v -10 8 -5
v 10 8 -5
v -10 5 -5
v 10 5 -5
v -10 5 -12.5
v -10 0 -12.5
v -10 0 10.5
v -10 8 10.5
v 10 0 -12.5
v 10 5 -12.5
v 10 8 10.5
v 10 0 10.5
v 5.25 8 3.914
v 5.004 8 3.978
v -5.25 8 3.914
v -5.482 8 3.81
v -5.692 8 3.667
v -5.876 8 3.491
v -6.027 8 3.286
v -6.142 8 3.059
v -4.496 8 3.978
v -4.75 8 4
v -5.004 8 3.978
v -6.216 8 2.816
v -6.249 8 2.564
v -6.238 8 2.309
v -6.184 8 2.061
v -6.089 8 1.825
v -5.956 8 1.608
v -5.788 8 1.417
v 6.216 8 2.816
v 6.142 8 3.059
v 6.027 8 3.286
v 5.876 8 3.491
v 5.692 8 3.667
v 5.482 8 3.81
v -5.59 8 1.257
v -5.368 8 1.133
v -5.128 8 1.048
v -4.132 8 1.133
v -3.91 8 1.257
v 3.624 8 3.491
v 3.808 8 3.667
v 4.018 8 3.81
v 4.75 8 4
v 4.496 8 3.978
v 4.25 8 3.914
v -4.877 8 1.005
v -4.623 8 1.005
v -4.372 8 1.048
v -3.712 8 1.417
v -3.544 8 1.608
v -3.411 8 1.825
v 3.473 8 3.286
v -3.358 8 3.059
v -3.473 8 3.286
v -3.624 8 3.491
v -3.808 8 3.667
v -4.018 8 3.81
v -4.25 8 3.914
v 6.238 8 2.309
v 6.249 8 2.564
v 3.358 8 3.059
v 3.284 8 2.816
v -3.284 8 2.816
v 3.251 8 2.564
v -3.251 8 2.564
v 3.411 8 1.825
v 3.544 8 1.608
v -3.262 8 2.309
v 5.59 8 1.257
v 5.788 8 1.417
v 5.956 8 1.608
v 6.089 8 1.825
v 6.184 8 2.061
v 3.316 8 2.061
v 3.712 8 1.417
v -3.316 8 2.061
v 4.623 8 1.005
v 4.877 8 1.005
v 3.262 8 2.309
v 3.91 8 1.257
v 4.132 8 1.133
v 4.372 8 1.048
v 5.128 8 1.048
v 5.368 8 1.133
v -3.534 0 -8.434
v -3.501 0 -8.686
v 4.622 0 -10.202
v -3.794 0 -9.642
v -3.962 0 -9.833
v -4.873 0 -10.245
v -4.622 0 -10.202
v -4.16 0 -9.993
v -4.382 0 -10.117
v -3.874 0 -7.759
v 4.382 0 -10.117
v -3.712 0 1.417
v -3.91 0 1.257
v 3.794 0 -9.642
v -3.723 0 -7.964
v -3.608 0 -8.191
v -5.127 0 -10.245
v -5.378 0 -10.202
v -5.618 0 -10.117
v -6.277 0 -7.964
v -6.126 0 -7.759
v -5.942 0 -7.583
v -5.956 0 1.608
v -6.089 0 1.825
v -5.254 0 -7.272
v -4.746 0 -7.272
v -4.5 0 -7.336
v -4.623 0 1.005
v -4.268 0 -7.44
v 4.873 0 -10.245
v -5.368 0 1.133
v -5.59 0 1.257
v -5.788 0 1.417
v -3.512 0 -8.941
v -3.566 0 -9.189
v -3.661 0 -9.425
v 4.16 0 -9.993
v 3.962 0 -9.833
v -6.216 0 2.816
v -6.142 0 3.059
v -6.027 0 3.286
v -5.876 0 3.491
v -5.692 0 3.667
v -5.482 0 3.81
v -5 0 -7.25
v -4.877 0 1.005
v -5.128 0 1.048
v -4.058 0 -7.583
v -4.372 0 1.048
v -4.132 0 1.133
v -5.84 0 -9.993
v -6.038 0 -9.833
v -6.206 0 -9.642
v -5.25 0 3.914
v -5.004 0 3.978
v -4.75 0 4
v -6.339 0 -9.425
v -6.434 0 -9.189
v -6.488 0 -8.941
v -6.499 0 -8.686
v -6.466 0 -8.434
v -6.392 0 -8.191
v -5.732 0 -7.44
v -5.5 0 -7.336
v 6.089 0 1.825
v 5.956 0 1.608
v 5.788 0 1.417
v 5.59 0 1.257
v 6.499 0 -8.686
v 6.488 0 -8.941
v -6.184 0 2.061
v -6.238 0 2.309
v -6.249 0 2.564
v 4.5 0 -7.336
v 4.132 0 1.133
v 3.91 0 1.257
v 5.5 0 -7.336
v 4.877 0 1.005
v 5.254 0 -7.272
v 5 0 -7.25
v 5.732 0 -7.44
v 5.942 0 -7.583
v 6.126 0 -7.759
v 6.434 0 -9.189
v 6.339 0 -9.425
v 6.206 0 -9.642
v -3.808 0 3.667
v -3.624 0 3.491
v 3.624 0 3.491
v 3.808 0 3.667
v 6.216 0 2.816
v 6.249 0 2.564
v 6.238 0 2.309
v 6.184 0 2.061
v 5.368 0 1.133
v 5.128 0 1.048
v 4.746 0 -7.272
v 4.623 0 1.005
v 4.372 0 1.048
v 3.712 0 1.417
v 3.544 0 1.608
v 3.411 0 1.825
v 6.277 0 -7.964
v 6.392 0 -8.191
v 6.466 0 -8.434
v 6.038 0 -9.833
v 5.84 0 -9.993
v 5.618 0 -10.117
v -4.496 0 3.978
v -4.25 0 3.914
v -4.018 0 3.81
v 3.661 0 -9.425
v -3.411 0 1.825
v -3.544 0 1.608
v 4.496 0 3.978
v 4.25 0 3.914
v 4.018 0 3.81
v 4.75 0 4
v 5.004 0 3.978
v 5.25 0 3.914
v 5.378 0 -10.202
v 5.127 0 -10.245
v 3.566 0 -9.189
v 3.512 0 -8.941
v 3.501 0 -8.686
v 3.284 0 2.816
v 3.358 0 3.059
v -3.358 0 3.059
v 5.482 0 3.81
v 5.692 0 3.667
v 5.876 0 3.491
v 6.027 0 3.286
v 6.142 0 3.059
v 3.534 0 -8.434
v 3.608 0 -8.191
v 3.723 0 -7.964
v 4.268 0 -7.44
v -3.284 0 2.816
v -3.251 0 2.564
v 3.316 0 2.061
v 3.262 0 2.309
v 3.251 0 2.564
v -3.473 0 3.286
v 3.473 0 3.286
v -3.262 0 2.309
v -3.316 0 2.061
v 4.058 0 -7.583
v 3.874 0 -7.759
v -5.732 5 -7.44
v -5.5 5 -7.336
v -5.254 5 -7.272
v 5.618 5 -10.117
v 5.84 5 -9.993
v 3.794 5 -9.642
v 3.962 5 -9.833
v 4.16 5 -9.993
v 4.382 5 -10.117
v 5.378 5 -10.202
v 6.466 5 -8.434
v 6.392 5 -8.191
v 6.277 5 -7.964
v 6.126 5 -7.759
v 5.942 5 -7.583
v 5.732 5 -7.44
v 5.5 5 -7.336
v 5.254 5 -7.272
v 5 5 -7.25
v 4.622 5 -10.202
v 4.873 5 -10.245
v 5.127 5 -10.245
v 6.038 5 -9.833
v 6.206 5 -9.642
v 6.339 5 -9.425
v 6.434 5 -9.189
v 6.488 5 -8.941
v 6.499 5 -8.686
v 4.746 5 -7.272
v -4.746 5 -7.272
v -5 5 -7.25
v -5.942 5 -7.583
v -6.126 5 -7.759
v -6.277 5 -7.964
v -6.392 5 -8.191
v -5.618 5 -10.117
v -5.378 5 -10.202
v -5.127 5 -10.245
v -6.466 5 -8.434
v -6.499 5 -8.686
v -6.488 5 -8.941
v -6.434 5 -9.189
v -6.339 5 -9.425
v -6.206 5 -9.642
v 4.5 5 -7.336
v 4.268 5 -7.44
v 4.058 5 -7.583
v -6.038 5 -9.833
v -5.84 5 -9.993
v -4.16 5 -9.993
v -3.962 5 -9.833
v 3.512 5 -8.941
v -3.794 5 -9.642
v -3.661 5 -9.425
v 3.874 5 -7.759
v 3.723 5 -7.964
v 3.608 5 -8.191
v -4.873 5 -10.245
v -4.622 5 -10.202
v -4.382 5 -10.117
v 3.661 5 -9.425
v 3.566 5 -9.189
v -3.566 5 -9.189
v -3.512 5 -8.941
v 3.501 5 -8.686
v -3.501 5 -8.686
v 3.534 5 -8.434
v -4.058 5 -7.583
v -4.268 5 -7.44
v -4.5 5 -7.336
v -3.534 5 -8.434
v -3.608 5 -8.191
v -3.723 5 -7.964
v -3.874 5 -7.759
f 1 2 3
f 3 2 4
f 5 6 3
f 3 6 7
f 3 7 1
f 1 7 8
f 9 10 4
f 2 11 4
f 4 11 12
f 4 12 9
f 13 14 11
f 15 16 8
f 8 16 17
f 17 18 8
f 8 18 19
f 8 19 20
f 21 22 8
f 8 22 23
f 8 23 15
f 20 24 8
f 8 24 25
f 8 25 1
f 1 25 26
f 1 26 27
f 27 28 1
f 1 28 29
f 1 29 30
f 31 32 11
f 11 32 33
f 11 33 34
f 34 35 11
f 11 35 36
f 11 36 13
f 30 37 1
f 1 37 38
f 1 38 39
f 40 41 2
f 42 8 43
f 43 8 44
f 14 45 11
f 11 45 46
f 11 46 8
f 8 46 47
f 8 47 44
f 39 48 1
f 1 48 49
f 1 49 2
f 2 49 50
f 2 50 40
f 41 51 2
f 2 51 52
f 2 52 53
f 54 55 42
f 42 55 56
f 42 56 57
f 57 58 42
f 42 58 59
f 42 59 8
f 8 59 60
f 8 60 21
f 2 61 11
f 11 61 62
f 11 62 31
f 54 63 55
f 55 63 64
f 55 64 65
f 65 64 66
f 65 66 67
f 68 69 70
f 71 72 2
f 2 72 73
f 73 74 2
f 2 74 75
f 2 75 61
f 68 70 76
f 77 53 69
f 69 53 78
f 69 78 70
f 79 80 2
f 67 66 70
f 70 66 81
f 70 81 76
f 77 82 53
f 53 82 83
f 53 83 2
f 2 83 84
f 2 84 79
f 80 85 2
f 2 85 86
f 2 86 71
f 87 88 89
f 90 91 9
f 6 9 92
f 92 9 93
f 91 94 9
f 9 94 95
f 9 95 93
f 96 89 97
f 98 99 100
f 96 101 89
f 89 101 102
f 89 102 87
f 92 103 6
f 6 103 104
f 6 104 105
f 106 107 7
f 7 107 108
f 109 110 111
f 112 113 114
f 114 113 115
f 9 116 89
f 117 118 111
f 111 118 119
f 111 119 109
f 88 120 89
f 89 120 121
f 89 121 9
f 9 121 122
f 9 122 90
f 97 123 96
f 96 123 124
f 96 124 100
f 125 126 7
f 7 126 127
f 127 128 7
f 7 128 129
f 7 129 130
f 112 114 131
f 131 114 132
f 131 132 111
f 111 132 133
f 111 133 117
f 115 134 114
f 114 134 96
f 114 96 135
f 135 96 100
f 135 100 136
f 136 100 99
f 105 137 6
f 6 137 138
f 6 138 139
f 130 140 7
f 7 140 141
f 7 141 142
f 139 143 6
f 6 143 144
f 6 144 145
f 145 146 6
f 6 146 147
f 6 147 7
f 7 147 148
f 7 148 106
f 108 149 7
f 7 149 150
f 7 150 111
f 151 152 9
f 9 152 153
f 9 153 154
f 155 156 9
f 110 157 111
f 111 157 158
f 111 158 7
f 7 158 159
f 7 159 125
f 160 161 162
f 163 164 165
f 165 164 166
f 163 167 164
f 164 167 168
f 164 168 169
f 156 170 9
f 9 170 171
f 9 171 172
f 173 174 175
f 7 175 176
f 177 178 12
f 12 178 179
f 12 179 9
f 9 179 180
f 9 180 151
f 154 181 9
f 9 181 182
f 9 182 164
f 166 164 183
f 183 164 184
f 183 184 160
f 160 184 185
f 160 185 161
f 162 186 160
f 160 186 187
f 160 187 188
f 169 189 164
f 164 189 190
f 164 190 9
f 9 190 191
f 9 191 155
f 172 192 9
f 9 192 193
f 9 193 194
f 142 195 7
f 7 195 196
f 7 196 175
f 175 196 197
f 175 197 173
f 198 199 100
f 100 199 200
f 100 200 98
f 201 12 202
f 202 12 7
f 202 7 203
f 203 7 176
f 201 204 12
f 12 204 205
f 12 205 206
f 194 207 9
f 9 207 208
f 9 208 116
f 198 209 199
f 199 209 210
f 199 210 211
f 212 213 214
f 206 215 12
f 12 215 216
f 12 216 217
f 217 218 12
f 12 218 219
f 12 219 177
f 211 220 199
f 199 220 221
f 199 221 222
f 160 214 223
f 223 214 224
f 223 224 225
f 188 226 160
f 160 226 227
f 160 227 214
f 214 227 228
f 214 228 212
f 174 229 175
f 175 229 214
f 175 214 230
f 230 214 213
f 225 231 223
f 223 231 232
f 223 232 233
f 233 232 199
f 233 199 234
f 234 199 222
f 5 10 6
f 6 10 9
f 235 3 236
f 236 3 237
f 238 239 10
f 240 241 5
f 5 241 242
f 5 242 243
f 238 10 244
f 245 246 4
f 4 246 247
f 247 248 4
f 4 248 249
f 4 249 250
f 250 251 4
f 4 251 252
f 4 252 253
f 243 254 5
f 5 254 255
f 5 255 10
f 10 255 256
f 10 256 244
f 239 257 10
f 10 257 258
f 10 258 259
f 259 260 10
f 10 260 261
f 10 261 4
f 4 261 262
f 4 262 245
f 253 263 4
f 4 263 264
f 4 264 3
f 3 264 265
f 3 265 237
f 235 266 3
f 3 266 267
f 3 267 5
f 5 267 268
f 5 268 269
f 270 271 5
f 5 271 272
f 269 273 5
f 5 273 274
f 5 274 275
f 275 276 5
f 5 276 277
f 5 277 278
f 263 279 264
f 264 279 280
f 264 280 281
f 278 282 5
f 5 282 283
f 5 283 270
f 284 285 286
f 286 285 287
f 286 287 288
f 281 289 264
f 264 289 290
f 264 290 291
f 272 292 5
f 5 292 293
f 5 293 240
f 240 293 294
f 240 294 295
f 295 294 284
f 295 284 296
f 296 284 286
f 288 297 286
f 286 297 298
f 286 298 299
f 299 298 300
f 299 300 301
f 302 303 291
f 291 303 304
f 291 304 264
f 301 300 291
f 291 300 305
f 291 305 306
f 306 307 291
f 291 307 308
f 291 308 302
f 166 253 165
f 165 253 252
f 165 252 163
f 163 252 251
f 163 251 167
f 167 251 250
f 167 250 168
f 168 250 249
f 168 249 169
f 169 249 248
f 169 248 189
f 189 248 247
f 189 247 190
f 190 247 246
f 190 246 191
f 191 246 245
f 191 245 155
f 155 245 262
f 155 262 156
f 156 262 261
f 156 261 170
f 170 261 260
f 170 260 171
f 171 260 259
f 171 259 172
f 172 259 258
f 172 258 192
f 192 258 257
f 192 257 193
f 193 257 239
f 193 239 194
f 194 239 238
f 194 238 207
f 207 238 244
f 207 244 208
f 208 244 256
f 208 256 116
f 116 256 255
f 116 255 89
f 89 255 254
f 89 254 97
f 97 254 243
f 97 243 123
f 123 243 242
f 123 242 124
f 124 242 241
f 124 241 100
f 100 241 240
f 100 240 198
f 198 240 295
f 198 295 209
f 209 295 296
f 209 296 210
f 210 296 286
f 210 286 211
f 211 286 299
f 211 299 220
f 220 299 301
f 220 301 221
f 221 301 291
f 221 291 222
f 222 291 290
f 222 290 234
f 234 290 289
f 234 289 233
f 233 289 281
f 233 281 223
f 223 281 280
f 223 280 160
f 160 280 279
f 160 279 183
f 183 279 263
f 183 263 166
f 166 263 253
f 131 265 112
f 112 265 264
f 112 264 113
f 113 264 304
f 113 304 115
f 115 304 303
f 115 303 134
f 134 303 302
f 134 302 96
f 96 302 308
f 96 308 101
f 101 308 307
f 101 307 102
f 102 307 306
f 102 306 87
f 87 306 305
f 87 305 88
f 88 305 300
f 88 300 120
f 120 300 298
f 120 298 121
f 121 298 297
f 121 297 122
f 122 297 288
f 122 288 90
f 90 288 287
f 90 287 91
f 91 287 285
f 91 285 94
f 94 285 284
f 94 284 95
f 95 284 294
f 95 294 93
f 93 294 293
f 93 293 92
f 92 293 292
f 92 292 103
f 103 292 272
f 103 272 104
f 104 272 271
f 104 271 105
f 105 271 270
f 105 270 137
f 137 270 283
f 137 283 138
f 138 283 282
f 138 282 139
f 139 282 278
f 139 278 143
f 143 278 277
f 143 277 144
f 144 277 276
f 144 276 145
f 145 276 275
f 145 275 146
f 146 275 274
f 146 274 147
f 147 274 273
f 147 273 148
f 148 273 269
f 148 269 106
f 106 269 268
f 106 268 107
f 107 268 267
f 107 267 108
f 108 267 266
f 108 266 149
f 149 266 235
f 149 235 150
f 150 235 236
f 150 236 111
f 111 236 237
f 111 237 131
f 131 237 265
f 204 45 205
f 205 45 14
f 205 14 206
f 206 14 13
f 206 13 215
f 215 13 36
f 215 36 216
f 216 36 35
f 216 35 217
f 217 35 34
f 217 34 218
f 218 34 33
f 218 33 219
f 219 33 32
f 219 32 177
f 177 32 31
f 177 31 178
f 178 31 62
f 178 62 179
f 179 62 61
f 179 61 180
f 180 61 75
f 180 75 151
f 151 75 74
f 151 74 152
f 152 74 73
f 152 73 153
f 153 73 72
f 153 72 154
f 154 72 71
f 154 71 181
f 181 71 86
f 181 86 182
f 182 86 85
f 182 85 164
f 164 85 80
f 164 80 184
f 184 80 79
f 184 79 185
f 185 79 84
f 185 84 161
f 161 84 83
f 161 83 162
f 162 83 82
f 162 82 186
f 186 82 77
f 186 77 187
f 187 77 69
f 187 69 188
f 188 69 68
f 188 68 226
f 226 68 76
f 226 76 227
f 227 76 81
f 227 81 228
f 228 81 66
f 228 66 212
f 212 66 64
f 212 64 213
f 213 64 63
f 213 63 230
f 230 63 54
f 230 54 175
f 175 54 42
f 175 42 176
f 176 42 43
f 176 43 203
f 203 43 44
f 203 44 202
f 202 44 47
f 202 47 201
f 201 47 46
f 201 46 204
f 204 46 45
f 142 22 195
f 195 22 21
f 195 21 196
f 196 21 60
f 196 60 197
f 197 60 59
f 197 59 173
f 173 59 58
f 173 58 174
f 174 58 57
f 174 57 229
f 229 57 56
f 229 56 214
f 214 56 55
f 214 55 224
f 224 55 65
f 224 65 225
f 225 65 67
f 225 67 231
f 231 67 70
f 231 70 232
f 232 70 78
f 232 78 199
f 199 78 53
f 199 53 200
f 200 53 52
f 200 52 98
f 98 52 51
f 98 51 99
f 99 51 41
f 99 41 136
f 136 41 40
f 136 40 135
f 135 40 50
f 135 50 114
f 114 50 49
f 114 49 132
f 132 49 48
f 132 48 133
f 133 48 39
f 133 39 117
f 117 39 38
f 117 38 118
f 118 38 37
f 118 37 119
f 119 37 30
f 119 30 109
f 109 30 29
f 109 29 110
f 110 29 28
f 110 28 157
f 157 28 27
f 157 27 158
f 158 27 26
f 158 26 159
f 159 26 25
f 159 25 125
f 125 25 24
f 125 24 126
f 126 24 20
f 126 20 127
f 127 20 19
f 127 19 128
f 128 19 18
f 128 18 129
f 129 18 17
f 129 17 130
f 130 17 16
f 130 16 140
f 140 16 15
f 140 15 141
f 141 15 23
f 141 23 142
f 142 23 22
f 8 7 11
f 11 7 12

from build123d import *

# Parameters (mm, degrees)
CROQUIS1_W              = 20
CROQUIS1_H              = 17.5
SALIENTE_EXTRUIR1_DEPTH = 8
CROQUIS1_4_W            = 20
CROQUIS1_4_H            = 7.5
SALIENTE_EXTRUIR2_DEPTH = 5
CROQUIS2_R              = 1.5
CORTAR_EXTRUIR1_DEPTH   = 5
CROQUIS3_R              = 1.5
CORTAR_EXTRUIR2_DEPTH   = 20
CROQUIS4_W              = 20
CROQUIS4_H              = 2
CORTAR_EXTRUIR3_DEPTH   = 35


with BuildPart() as part:
    # Croquis1 → Saliente-Extruir1 (new body)
    with BuildSketch(Plane(origin=(0, 0, 0), x_dir=(1, 0, 0), z_dir=(0, 1, 0))):
        with Locations((0, -3.75)):
            Rectangle(CROQUIS1_W, CROQUIS1_H)
    extrude(amount=SALIENTE_EXTRUIR1_DEPTH)

    # Croquis1<4> → Saliente-Extruir2 (add)
    with BuildSketch(Plane(origin=(0, 0, 0), x_dir=(1, 0, 0), z_dir=(0, 1, 0))):
        with Locations((0, 8.75)):
            Rectangle(CROQUIS1_4_W, CROQUIS1_4_H)
    extrude(amount=SALIENTE_EXTRUIR2_DEPTH)

    # Croquis2 → Cortar-Extruir1 (cut)
    with BuildSketch(Plane(origin=(0, 5, 0), x_dir=(1, 0, 0), z_dir=(0, 1, 0))):
        with Locations((-5, 8.75)):
            Circle(CROQUIS2_R)
        with Locations((5, 8.75)):
            Circle(CROQUIS2_R)
    extrude(amount=-CORTAR_EXTRUIR1_DEPTH, mode=Mode.SUBTRACT)

    # Croquis3 → Cortar-Extruir2 (cut)
    with BuildSketch(Plane(origin=(0, 8, 0), x_dir=(1, 0, 0), z_dir=(0, 1, 0))):
        with Locations((-4.75, -2.5)):
            Circle(CROQUIS3_R)
        with Locations((4.75, -2.5)):
            Circle(CROQUIS3_R)
    extrude(amount=-CORTAR_EXTRUIR2_DEPTH, mode=Mode.SUBTRACT)

    # Croquis4 → Cortar-Extruir3 (cut)
    with BuildSketch(Plane(origin=(0, 8, 0), x_dir=(1, 0, 0), z_dir=(0, 1, 0))):
        with Locations((0, -11.5)):
            Rectangle(CROQUIS4_W, CROQUIS4_H)
    extrude(amount=-CORTAR_EXTRUIR3_DEPTH, mode=Mode.SUBTRACT)


solid = part.part
